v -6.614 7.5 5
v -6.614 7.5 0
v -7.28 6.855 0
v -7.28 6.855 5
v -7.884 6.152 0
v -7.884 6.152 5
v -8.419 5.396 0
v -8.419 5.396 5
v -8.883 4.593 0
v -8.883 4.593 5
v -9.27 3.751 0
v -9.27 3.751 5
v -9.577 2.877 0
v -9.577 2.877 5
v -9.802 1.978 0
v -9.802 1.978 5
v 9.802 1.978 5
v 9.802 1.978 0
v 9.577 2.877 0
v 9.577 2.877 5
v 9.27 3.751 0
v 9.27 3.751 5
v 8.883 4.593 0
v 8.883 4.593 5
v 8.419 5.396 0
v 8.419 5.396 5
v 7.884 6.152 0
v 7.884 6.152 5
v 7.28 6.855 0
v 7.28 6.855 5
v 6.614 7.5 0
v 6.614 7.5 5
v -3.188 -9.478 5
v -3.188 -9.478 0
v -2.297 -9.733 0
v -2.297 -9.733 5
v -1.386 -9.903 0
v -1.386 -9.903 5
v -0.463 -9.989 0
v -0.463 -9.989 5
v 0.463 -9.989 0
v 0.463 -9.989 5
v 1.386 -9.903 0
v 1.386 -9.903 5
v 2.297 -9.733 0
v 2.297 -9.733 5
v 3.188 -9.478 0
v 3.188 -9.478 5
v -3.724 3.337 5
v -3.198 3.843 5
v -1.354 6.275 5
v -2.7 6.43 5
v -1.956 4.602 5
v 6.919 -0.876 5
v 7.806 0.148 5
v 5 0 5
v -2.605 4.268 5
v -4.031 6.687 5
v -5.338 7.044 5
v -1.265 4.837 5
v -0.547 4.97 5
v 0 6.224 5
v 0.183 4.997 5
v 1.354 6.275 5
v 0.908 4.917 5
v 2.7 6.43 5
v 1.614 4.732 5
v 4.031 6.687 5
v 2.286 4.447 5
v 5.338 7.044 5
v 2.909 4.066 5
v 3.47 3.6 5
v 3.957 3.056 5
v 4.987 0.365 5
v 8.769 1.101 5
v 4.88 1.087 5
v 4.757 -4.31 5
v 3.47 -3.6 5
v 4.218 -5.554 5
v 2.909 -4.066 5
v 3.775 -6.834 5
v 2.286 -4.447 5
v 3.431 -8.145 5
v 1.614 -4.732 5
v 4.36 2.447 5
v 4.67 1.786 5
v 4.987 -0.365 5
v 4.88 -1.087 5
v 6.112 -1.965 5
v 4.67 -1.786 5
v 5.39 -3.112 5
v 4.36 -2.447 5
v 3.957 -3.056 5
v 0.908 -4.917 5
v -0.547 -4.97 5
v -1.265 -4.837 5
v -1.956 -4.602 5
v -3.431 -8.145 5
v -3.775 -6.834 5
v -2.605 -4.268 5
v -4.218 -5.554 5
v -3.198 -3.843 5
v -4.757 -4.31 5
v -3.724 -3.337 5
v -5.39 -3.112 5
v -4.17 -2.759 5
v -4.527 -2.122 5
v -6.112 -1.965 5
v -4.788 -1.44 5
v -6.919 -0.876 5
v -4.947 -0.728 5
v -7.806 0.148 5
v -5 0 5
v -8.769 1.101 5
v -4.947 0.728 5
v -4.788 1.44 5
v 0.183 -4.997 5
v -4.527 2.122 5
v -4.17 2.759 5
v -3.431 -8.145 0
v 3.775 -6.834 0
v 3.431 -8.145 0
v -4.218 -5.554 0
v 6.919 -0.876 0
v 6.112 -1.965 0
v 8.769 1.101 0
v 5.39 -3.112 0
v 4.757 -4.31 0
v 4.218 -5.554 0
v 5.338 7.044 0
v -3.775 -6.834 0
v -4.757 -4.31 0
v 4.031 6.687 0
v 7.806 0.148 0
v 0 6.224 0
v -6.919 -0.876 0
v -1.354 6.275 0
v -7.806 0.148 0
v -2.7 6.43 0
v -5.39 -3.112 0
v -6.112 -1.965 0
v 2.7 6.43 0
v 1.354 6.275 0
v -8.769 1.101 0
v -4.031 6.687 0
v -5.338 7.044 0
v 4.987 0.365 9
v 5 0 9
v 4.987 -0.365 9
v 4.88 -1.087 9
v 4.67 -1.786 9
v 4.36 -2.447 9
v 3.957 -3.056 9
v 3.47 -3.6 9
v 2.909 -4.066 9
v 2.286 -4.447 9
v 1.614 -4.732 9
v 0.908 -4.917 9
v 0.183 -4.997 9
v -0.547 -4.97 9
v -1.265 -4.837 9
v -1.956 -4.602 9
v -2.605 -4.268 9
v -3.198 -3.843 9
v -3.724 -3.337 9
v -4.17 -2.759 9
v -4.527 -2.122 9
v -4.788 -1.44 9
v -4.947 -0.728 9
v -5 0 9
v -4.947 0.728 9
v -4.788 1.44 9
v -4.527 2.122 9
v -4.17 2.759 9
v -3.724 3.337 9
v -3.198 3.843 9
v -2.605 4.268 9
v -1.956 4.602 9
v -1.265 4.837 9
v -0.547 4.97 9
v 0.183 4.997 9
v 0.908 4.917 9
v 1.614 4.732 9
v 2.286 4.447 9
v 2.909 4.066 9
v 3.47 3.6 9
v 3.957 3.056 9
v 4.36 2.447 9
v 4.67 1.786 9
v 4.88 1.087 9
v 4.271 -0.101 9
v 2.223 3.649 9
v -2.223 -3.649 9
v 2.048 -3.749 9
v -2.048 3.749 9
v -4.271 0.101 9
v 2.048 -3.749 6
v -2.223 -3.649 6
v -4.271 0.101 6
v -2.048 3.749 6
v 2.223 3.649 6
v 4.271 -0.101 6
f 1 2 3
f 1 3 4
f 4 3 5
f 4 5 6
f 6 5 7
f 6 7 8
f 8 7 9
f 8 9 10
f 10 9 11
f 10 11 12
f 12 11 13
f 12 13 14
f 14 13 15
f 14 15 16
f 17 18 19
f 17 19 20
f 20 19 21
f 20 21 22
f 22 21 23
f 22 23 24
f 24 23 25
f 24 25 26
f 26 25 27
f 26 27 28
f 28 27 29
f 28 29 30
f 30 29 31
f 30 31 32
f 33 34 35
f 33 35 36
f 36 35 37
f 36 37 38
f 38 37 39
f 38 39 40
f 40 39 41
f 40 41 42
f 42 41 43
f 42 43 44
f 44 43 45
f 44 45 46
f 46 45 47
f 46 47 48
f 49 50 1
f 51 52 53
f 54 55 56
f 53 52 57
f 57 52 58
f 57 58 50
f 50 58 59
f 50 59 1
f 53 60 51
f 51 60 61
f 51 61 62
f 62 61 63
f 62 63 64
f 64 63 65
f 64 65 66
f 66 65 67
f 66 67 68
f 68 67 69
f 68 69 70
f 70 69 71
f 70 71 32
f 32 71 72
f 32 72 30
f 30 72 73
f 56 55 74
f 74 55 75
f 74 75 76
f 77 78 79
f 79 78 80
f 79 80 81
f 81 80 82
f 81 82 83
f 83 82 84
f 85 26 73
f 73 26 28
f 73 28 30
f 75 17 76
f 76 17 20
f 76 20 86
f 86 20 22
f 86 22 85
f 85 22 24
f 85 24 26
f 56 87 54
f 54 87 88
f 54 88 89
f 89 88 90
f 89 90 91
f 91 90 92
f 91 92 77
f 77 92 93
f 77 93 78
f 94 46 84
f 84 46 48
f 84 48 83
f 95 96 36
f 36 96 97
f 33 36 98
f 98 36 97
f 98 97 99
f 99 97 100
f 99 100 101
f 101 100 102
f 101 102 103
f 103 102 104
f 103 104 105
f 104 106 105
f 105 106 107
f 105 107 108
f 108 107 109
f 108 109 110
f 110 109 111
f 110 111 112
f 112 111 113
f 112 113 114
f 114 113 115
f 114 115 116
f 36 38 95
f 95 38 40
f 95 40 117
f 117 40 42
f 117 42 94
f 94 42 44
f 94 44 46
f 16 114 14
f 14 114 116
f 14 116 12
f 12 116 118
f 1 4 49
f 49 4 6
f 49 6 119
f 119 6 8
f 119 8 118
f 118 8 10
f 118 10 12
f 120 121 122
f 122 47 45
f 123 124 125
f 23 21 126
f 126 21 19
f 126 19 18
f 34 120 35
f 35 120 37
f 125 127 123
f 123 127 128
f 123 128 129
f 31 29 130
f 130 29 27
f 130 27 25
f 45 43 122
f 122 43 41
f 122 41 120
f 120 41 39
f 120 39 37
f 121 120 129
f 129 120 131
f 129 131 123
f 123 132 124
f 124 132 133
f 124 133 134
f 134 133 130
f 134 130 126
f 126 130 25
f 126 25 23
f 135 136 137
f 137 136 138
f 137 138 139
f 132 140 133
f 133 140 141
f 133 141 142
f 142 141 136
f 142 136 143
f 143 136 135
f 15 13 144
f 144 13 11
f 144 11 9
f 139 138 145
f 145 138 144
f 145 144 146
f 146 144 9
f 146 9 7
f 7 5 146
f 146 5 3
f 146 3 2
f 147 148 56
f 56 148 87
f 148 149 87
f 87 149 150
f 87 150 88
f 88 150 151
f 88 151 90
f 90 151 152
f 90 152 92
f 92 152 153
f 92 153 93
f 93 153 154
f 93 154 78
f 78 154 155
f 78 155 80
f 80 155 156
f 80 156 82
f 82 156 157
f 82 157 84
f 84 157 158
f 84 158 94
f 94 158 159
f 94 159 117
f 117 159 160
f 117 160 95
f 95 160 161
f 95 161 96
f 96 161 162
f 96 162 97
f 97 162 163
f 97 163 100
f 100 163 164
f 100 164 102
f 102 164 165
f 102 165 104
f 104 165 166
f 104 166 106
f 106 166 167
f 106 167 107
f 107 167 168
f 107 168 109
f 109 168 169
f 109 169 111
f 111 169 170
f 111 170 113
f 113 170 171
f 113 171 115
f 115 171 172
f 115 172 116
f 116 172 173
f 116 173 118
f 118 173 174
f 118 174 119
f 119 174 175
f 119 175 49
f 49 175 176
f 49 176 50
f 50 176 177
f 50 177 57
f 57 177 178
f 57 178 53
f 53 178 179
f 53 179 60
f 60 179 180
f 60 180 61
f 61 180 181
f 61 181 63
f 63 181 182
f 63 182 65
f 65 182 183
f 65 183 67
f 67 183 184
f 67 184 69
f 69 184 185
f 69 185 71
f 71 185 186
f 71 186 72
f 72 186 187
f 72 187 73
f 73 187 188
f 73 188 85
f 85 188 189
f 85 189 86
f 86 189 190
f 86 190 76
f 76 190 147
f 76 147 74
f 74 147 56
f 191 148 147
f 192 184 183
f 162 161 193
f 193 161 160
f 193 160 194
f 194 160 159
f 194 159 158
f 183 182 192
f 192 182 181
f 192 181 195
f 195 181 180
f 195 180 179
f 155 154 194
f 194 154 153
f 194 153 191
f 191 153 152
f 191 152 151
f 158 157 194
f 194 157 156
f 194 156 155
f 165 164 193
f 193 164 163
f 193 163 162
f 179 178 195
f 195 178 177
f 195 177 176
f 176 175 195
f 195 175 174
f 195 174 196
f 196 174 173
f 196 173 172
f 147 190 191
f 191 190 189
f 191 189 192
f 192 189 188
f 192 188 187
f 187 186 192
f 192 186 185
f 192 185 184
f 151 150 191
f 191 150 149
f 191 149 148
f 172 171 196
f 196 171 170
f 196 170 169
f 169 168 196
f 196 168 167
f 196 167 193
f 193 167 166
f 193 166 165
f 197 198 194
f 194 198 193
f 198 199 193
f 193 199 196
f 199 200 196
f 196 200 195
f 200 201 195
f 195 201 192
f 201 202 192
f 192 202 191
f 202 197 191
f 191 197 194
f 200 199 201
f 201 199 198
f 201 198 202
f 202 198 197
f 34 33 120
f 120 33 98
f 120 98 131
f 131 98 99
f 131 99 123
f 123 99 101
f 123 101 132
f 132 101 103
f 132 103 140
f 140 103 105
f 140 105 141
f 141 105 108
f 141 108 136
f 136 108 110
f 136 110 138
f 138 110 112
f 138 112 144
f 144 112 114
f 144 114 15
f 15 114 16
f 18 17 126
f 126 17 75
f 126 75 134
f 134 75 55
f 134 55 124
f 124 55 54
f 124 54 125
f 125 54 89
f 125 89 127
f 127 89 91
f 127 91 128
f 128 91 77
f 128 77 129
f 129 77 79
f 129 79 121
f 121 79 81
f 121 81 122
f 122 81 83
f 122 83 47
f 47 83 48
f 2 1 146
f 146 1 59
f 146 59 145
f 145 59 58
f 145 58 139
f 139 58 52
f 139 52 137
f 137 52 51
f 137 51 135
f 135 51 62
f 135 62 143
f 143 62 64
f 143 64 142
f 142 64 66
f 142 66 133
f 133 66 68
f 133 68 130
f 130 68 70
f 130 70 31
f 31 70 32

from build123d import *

# Parameters (mm, degrees)
SKETCH1_R               = 10
BOSS_EXTRUDE1_DEPTH     = 5
SKETCH2_R               = 5
BOSS_EXTRUDE2_DEPTH     = 4
CUT_EXTRUDE1_DEPTH      = 3
CUT_EXTRUDE_THIN1_DEPTH = 5


with BuildPart() as part:
    # Sketch1 → Boss-Extrude1 (new body)
    with BuildSketch(Plane.XY):
        Circle(SKETCH1_R)
    extrude(amount=BOSS_EXTRUDE1_DEPTH)

    # Sketch2 → Boss-Extrude2 (add)
    with BuildSketch(Plane.XY.offset(5)):
        Circle(SKETCH2_R)
    extrude(amount=BOSS_EXTRUDE2_DEPTH)

    # Sketch3 → Cut-Extrude1 (cut)
    with BuildSketch(Plane.XY.offset(9)):
        Polygon((2.048231561, -3.749410728), (4.27120072, -0.1008848), (2.222969159, 3.648525928), (-2.048231561, 3.749410728), (-4.27120072, 0.1008848), (-2.222969159, -3.648525928), align=None)
    extrude(amount=-CUT_EXTRUDE1_DEPTH, mode=Mode.SUBTRACT)

    # Sketch4 → Cut-Extrude-Thin1 (cut)
    with BuildSketch(Plane.XY.offset(5)):
        with BuildLine():
            ThreePointArc((-6.614378278, 7.5), (0, 6.223611165), (6.614378278, 7.5))
            Line((6.614378278, 7.5), (2.893499791, 16.781975183))
            ThreePointArc((2.893499791, 16.781975183), (0, 16.223611165), (-2.893499791, 16.781975183))
            Line((-2.893499791, 16.781975183), (-6.614378278, 7.5))
        make_face()
        with BuildLine():
            ThreePointArc((9.802379667, 1.978219619), (5.389805372, -3.111805583), (3.18800139, -9.478219619))
            Line((3.18800139, -9.478219619), (13.086866938, -10.896831917))
            ThreePointArc((13.086866938, -10.896831917), (14.05005941, -8.111805583), (15.98036673, -5.885143266))
            Line((15.98036673, -5.885143266), (9.802379667, 1.978219619))
        make_face()
        with BuildLine():
            ThreePointArc((-3.18800139, -9.478219619), (-5.389805372, -3.111805583), (-9.802379667, 1.978219619))
            Line((-9.802379667, 1.978219619), (-15.98036673, -5.885143266))
            ThreePointArc((-15.98036673, -5.885143266), (-14.05005941, -8.111805583), (-13.086866938, -10.896831917))
            Line((-13.086866938, -10.896831917), (-3.18800139, -9.478219619))
        make_face()
    extrude(amount=-CUT_EXTRUDE_THIN1_DEPTH, mode=Mode.SUBTRACT)


solid = part.part
